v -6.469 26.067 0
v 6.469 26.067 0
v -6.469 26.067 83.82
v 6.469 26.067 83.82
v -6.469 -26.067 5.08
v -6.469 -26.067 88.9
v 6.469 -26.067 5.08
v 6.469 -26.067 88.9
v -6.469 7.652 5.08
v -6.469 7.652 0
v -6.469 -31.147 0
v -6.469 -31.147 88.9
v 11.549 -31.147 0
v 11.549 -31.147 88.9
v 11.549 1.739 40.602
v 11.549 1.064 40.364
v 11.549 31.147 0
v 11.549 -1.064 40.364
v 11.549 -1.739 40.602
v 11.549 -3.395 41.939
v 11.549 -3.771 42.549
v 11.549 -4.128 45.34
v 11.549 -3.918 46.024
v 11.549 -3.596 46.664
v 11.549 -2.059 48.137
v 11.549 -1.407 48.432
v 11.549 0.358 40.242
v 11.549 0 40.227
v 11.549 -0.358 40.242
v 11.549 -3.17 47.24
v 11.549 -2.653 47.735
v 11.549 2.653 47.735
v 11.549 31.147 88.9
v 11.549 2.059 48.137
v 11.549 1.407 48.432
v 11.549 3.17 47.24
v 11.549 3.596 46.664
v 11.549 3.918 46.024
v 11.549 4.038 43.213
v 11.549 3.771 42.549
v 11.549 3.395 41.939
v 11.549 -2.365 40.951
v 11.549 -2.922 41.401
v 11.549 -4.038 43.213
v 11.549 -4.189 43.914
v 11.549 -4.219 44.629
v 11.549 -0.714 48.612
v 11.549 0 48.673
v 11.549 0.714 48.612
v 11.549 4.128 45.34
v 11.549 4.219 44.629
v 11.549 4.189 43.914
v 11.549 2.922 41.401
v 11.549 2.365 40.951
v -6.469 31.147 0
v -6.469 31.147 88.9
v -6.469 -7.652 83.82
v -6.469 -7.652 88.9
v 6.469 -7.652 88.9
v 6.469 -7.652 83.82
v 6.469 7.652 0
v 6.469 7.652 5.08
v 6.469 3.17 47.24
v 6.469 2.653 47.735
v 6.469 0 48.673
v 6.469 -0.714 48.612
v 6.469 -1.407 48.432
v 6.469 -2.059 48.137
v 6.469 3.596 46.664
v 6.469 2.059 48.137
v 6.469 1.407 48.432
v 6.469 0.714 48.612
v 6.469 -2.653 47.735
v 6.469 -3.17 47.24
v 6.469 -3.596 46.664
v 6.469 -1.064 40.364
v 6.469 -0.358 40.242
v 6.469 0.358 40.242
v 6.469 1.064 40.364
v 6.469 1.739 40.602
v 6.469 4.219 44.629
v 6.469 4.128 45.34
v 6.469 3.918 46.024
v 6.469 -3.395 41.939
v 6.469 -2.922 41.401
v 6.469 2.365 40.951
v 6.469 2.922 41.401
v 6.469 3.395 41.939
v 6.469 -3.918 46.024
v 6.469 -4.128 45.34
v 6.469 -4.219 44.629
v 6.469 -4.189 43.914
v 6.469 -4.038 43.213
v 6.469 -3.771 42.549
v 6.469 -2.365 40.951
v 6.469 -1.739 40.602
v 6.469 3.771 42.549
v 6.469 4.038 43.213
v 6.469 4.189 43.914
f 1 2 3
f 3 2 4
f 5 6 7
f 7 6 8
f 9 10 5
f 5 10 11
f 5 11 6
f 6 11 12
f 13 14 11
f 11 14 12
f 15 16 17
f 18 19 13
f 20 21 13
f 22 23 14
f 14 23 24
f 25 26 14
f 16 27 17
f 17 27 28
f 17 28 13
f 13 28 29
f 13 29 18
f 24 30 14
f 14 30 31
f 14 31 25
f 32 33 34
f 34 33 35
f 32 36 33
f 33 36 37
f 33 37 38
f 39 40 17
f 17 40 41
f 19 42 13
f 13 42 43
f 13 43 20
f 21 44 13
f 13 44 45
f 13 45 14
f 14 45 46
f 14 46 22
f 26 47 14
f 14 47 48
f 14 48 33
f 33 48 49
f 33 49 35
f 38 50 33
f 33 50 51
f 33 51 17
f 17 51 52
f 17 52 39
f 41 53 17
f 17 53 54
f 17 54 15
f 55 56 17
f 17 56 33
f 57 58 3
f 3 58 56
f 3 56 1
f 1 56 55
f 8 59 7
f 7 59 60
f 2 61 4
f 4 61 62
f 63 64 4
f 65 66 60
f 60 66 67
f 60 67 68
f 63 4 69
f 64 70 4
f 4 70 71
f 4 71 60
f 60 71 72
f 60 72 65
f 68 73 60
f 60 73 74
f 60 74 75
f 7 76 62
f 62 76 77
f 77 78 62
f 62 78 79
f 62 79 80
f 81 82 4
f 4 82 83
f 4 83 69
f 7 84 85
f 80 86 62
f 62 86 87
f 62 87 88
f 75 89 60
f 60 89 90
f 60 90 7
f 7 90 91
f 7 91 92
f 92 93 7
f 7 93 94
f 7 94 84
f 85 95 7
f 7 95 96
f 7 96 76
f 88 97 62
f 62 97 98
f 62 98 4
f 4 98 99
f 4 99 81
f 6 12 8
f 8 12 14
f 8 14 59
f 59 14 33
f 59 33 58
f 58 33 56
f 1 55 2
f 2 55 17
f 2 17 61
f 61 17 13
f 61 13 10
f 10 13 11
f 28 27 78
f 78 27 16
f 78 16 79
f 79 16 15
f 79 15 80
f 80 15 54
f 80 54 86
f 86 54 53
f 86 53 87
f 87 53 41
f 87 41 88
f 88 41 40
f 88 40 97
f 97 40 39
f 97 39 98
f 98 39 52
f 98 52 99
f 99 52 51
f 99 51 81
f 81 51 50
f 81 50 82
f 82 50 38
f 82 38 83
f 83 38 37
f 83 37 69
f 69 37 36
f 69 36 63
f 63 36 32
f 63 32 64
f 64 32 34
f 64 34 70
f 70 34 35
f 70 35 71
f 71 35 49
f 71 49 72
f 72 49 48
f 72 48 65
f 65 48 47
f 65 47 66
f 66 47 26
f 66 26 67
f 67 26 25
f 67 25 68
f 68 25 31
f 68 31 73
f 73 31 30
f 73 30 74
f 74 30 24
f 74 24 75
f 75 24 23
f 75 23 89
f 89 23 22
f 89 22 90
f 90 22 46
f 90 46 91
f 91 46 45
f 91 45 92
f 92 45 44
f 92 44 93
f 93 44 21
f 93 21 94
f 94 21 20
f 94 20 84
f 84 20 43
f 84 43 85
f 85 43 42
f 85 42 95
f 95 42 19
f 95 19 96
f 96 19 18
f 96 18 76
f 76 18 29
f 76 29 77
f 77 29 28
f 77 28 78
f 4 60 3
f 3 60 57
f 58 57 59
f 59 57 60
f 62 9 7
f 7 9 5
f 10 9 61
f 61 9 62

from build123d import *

# Parameters (mm, degrees)
EXTRUDE_THIN1_DEPTH = 88.9
SKETCH2_R           = 4.22275
CUT_EXTRUDE2_DEPTH  = 5.08
SKETCH3_W           = 18.017998
SKETCH3_H           = 38.7985
BOSS_EXTRUDE1_DEPTH = 5.08
SKETCH4_W           = 18.017998
SKETCH4_H           = 38.7985
BOSS_EXTRUDE2_DEPTH = 5.08


with BuildPart() as part:
    # Sketch1 → Extrude-Thin1 (new body)
    with BuildSketch(Plane.XY):
        Polygon((-6.468999, 26.06675), (6.468999, 26.06675), (6.468999, -26.06675), (-6.468999, -26.06675), (-6.468999, -31.14675), (11.548999, -31.14675), (11.548999, 31.14675), (-6.468999, 31.14675), align=None)
    extrude(amount=EXTRUDE_THIN1_DEPTH)

    # Sketch2 → Cut-Extrude2 (cut)
    with BuildSketch(Plane.ZY.offset(-6.468999)):
        with Locations((44.45, 0)):
            Circle(SKETCH2_R)
    extrude(amount=-CUT_EXTRUDE2_DEPTH, mode=Mode.SUBTRACT)

    # Sketch3 → Boss-Extrude1 (add)
    with BuildSketch(Plane.XY.offset(88.9)):
        with Locations((2.54, 11.7475)):
            Rectangle(SKETCH3_W, SKETCH3_H)
    extrude(amount=-BOSS_EXTRUDE1_DEPTH)

    # Sketch4 → Boss-Extrude2 (add)
    with BuildSketch(Plane(origin=(0, 0, 0), x_dir=(-1, 0, 0), z_dir=(0, 0, -1))):
        with Locations((-2.54, -11.7475)):
            Rectangle(SKETCH4_W, SKETCH4_H)
    extrude(amount=-BOSS_EXTRUDE2_DEPTH)


solid = part.part
